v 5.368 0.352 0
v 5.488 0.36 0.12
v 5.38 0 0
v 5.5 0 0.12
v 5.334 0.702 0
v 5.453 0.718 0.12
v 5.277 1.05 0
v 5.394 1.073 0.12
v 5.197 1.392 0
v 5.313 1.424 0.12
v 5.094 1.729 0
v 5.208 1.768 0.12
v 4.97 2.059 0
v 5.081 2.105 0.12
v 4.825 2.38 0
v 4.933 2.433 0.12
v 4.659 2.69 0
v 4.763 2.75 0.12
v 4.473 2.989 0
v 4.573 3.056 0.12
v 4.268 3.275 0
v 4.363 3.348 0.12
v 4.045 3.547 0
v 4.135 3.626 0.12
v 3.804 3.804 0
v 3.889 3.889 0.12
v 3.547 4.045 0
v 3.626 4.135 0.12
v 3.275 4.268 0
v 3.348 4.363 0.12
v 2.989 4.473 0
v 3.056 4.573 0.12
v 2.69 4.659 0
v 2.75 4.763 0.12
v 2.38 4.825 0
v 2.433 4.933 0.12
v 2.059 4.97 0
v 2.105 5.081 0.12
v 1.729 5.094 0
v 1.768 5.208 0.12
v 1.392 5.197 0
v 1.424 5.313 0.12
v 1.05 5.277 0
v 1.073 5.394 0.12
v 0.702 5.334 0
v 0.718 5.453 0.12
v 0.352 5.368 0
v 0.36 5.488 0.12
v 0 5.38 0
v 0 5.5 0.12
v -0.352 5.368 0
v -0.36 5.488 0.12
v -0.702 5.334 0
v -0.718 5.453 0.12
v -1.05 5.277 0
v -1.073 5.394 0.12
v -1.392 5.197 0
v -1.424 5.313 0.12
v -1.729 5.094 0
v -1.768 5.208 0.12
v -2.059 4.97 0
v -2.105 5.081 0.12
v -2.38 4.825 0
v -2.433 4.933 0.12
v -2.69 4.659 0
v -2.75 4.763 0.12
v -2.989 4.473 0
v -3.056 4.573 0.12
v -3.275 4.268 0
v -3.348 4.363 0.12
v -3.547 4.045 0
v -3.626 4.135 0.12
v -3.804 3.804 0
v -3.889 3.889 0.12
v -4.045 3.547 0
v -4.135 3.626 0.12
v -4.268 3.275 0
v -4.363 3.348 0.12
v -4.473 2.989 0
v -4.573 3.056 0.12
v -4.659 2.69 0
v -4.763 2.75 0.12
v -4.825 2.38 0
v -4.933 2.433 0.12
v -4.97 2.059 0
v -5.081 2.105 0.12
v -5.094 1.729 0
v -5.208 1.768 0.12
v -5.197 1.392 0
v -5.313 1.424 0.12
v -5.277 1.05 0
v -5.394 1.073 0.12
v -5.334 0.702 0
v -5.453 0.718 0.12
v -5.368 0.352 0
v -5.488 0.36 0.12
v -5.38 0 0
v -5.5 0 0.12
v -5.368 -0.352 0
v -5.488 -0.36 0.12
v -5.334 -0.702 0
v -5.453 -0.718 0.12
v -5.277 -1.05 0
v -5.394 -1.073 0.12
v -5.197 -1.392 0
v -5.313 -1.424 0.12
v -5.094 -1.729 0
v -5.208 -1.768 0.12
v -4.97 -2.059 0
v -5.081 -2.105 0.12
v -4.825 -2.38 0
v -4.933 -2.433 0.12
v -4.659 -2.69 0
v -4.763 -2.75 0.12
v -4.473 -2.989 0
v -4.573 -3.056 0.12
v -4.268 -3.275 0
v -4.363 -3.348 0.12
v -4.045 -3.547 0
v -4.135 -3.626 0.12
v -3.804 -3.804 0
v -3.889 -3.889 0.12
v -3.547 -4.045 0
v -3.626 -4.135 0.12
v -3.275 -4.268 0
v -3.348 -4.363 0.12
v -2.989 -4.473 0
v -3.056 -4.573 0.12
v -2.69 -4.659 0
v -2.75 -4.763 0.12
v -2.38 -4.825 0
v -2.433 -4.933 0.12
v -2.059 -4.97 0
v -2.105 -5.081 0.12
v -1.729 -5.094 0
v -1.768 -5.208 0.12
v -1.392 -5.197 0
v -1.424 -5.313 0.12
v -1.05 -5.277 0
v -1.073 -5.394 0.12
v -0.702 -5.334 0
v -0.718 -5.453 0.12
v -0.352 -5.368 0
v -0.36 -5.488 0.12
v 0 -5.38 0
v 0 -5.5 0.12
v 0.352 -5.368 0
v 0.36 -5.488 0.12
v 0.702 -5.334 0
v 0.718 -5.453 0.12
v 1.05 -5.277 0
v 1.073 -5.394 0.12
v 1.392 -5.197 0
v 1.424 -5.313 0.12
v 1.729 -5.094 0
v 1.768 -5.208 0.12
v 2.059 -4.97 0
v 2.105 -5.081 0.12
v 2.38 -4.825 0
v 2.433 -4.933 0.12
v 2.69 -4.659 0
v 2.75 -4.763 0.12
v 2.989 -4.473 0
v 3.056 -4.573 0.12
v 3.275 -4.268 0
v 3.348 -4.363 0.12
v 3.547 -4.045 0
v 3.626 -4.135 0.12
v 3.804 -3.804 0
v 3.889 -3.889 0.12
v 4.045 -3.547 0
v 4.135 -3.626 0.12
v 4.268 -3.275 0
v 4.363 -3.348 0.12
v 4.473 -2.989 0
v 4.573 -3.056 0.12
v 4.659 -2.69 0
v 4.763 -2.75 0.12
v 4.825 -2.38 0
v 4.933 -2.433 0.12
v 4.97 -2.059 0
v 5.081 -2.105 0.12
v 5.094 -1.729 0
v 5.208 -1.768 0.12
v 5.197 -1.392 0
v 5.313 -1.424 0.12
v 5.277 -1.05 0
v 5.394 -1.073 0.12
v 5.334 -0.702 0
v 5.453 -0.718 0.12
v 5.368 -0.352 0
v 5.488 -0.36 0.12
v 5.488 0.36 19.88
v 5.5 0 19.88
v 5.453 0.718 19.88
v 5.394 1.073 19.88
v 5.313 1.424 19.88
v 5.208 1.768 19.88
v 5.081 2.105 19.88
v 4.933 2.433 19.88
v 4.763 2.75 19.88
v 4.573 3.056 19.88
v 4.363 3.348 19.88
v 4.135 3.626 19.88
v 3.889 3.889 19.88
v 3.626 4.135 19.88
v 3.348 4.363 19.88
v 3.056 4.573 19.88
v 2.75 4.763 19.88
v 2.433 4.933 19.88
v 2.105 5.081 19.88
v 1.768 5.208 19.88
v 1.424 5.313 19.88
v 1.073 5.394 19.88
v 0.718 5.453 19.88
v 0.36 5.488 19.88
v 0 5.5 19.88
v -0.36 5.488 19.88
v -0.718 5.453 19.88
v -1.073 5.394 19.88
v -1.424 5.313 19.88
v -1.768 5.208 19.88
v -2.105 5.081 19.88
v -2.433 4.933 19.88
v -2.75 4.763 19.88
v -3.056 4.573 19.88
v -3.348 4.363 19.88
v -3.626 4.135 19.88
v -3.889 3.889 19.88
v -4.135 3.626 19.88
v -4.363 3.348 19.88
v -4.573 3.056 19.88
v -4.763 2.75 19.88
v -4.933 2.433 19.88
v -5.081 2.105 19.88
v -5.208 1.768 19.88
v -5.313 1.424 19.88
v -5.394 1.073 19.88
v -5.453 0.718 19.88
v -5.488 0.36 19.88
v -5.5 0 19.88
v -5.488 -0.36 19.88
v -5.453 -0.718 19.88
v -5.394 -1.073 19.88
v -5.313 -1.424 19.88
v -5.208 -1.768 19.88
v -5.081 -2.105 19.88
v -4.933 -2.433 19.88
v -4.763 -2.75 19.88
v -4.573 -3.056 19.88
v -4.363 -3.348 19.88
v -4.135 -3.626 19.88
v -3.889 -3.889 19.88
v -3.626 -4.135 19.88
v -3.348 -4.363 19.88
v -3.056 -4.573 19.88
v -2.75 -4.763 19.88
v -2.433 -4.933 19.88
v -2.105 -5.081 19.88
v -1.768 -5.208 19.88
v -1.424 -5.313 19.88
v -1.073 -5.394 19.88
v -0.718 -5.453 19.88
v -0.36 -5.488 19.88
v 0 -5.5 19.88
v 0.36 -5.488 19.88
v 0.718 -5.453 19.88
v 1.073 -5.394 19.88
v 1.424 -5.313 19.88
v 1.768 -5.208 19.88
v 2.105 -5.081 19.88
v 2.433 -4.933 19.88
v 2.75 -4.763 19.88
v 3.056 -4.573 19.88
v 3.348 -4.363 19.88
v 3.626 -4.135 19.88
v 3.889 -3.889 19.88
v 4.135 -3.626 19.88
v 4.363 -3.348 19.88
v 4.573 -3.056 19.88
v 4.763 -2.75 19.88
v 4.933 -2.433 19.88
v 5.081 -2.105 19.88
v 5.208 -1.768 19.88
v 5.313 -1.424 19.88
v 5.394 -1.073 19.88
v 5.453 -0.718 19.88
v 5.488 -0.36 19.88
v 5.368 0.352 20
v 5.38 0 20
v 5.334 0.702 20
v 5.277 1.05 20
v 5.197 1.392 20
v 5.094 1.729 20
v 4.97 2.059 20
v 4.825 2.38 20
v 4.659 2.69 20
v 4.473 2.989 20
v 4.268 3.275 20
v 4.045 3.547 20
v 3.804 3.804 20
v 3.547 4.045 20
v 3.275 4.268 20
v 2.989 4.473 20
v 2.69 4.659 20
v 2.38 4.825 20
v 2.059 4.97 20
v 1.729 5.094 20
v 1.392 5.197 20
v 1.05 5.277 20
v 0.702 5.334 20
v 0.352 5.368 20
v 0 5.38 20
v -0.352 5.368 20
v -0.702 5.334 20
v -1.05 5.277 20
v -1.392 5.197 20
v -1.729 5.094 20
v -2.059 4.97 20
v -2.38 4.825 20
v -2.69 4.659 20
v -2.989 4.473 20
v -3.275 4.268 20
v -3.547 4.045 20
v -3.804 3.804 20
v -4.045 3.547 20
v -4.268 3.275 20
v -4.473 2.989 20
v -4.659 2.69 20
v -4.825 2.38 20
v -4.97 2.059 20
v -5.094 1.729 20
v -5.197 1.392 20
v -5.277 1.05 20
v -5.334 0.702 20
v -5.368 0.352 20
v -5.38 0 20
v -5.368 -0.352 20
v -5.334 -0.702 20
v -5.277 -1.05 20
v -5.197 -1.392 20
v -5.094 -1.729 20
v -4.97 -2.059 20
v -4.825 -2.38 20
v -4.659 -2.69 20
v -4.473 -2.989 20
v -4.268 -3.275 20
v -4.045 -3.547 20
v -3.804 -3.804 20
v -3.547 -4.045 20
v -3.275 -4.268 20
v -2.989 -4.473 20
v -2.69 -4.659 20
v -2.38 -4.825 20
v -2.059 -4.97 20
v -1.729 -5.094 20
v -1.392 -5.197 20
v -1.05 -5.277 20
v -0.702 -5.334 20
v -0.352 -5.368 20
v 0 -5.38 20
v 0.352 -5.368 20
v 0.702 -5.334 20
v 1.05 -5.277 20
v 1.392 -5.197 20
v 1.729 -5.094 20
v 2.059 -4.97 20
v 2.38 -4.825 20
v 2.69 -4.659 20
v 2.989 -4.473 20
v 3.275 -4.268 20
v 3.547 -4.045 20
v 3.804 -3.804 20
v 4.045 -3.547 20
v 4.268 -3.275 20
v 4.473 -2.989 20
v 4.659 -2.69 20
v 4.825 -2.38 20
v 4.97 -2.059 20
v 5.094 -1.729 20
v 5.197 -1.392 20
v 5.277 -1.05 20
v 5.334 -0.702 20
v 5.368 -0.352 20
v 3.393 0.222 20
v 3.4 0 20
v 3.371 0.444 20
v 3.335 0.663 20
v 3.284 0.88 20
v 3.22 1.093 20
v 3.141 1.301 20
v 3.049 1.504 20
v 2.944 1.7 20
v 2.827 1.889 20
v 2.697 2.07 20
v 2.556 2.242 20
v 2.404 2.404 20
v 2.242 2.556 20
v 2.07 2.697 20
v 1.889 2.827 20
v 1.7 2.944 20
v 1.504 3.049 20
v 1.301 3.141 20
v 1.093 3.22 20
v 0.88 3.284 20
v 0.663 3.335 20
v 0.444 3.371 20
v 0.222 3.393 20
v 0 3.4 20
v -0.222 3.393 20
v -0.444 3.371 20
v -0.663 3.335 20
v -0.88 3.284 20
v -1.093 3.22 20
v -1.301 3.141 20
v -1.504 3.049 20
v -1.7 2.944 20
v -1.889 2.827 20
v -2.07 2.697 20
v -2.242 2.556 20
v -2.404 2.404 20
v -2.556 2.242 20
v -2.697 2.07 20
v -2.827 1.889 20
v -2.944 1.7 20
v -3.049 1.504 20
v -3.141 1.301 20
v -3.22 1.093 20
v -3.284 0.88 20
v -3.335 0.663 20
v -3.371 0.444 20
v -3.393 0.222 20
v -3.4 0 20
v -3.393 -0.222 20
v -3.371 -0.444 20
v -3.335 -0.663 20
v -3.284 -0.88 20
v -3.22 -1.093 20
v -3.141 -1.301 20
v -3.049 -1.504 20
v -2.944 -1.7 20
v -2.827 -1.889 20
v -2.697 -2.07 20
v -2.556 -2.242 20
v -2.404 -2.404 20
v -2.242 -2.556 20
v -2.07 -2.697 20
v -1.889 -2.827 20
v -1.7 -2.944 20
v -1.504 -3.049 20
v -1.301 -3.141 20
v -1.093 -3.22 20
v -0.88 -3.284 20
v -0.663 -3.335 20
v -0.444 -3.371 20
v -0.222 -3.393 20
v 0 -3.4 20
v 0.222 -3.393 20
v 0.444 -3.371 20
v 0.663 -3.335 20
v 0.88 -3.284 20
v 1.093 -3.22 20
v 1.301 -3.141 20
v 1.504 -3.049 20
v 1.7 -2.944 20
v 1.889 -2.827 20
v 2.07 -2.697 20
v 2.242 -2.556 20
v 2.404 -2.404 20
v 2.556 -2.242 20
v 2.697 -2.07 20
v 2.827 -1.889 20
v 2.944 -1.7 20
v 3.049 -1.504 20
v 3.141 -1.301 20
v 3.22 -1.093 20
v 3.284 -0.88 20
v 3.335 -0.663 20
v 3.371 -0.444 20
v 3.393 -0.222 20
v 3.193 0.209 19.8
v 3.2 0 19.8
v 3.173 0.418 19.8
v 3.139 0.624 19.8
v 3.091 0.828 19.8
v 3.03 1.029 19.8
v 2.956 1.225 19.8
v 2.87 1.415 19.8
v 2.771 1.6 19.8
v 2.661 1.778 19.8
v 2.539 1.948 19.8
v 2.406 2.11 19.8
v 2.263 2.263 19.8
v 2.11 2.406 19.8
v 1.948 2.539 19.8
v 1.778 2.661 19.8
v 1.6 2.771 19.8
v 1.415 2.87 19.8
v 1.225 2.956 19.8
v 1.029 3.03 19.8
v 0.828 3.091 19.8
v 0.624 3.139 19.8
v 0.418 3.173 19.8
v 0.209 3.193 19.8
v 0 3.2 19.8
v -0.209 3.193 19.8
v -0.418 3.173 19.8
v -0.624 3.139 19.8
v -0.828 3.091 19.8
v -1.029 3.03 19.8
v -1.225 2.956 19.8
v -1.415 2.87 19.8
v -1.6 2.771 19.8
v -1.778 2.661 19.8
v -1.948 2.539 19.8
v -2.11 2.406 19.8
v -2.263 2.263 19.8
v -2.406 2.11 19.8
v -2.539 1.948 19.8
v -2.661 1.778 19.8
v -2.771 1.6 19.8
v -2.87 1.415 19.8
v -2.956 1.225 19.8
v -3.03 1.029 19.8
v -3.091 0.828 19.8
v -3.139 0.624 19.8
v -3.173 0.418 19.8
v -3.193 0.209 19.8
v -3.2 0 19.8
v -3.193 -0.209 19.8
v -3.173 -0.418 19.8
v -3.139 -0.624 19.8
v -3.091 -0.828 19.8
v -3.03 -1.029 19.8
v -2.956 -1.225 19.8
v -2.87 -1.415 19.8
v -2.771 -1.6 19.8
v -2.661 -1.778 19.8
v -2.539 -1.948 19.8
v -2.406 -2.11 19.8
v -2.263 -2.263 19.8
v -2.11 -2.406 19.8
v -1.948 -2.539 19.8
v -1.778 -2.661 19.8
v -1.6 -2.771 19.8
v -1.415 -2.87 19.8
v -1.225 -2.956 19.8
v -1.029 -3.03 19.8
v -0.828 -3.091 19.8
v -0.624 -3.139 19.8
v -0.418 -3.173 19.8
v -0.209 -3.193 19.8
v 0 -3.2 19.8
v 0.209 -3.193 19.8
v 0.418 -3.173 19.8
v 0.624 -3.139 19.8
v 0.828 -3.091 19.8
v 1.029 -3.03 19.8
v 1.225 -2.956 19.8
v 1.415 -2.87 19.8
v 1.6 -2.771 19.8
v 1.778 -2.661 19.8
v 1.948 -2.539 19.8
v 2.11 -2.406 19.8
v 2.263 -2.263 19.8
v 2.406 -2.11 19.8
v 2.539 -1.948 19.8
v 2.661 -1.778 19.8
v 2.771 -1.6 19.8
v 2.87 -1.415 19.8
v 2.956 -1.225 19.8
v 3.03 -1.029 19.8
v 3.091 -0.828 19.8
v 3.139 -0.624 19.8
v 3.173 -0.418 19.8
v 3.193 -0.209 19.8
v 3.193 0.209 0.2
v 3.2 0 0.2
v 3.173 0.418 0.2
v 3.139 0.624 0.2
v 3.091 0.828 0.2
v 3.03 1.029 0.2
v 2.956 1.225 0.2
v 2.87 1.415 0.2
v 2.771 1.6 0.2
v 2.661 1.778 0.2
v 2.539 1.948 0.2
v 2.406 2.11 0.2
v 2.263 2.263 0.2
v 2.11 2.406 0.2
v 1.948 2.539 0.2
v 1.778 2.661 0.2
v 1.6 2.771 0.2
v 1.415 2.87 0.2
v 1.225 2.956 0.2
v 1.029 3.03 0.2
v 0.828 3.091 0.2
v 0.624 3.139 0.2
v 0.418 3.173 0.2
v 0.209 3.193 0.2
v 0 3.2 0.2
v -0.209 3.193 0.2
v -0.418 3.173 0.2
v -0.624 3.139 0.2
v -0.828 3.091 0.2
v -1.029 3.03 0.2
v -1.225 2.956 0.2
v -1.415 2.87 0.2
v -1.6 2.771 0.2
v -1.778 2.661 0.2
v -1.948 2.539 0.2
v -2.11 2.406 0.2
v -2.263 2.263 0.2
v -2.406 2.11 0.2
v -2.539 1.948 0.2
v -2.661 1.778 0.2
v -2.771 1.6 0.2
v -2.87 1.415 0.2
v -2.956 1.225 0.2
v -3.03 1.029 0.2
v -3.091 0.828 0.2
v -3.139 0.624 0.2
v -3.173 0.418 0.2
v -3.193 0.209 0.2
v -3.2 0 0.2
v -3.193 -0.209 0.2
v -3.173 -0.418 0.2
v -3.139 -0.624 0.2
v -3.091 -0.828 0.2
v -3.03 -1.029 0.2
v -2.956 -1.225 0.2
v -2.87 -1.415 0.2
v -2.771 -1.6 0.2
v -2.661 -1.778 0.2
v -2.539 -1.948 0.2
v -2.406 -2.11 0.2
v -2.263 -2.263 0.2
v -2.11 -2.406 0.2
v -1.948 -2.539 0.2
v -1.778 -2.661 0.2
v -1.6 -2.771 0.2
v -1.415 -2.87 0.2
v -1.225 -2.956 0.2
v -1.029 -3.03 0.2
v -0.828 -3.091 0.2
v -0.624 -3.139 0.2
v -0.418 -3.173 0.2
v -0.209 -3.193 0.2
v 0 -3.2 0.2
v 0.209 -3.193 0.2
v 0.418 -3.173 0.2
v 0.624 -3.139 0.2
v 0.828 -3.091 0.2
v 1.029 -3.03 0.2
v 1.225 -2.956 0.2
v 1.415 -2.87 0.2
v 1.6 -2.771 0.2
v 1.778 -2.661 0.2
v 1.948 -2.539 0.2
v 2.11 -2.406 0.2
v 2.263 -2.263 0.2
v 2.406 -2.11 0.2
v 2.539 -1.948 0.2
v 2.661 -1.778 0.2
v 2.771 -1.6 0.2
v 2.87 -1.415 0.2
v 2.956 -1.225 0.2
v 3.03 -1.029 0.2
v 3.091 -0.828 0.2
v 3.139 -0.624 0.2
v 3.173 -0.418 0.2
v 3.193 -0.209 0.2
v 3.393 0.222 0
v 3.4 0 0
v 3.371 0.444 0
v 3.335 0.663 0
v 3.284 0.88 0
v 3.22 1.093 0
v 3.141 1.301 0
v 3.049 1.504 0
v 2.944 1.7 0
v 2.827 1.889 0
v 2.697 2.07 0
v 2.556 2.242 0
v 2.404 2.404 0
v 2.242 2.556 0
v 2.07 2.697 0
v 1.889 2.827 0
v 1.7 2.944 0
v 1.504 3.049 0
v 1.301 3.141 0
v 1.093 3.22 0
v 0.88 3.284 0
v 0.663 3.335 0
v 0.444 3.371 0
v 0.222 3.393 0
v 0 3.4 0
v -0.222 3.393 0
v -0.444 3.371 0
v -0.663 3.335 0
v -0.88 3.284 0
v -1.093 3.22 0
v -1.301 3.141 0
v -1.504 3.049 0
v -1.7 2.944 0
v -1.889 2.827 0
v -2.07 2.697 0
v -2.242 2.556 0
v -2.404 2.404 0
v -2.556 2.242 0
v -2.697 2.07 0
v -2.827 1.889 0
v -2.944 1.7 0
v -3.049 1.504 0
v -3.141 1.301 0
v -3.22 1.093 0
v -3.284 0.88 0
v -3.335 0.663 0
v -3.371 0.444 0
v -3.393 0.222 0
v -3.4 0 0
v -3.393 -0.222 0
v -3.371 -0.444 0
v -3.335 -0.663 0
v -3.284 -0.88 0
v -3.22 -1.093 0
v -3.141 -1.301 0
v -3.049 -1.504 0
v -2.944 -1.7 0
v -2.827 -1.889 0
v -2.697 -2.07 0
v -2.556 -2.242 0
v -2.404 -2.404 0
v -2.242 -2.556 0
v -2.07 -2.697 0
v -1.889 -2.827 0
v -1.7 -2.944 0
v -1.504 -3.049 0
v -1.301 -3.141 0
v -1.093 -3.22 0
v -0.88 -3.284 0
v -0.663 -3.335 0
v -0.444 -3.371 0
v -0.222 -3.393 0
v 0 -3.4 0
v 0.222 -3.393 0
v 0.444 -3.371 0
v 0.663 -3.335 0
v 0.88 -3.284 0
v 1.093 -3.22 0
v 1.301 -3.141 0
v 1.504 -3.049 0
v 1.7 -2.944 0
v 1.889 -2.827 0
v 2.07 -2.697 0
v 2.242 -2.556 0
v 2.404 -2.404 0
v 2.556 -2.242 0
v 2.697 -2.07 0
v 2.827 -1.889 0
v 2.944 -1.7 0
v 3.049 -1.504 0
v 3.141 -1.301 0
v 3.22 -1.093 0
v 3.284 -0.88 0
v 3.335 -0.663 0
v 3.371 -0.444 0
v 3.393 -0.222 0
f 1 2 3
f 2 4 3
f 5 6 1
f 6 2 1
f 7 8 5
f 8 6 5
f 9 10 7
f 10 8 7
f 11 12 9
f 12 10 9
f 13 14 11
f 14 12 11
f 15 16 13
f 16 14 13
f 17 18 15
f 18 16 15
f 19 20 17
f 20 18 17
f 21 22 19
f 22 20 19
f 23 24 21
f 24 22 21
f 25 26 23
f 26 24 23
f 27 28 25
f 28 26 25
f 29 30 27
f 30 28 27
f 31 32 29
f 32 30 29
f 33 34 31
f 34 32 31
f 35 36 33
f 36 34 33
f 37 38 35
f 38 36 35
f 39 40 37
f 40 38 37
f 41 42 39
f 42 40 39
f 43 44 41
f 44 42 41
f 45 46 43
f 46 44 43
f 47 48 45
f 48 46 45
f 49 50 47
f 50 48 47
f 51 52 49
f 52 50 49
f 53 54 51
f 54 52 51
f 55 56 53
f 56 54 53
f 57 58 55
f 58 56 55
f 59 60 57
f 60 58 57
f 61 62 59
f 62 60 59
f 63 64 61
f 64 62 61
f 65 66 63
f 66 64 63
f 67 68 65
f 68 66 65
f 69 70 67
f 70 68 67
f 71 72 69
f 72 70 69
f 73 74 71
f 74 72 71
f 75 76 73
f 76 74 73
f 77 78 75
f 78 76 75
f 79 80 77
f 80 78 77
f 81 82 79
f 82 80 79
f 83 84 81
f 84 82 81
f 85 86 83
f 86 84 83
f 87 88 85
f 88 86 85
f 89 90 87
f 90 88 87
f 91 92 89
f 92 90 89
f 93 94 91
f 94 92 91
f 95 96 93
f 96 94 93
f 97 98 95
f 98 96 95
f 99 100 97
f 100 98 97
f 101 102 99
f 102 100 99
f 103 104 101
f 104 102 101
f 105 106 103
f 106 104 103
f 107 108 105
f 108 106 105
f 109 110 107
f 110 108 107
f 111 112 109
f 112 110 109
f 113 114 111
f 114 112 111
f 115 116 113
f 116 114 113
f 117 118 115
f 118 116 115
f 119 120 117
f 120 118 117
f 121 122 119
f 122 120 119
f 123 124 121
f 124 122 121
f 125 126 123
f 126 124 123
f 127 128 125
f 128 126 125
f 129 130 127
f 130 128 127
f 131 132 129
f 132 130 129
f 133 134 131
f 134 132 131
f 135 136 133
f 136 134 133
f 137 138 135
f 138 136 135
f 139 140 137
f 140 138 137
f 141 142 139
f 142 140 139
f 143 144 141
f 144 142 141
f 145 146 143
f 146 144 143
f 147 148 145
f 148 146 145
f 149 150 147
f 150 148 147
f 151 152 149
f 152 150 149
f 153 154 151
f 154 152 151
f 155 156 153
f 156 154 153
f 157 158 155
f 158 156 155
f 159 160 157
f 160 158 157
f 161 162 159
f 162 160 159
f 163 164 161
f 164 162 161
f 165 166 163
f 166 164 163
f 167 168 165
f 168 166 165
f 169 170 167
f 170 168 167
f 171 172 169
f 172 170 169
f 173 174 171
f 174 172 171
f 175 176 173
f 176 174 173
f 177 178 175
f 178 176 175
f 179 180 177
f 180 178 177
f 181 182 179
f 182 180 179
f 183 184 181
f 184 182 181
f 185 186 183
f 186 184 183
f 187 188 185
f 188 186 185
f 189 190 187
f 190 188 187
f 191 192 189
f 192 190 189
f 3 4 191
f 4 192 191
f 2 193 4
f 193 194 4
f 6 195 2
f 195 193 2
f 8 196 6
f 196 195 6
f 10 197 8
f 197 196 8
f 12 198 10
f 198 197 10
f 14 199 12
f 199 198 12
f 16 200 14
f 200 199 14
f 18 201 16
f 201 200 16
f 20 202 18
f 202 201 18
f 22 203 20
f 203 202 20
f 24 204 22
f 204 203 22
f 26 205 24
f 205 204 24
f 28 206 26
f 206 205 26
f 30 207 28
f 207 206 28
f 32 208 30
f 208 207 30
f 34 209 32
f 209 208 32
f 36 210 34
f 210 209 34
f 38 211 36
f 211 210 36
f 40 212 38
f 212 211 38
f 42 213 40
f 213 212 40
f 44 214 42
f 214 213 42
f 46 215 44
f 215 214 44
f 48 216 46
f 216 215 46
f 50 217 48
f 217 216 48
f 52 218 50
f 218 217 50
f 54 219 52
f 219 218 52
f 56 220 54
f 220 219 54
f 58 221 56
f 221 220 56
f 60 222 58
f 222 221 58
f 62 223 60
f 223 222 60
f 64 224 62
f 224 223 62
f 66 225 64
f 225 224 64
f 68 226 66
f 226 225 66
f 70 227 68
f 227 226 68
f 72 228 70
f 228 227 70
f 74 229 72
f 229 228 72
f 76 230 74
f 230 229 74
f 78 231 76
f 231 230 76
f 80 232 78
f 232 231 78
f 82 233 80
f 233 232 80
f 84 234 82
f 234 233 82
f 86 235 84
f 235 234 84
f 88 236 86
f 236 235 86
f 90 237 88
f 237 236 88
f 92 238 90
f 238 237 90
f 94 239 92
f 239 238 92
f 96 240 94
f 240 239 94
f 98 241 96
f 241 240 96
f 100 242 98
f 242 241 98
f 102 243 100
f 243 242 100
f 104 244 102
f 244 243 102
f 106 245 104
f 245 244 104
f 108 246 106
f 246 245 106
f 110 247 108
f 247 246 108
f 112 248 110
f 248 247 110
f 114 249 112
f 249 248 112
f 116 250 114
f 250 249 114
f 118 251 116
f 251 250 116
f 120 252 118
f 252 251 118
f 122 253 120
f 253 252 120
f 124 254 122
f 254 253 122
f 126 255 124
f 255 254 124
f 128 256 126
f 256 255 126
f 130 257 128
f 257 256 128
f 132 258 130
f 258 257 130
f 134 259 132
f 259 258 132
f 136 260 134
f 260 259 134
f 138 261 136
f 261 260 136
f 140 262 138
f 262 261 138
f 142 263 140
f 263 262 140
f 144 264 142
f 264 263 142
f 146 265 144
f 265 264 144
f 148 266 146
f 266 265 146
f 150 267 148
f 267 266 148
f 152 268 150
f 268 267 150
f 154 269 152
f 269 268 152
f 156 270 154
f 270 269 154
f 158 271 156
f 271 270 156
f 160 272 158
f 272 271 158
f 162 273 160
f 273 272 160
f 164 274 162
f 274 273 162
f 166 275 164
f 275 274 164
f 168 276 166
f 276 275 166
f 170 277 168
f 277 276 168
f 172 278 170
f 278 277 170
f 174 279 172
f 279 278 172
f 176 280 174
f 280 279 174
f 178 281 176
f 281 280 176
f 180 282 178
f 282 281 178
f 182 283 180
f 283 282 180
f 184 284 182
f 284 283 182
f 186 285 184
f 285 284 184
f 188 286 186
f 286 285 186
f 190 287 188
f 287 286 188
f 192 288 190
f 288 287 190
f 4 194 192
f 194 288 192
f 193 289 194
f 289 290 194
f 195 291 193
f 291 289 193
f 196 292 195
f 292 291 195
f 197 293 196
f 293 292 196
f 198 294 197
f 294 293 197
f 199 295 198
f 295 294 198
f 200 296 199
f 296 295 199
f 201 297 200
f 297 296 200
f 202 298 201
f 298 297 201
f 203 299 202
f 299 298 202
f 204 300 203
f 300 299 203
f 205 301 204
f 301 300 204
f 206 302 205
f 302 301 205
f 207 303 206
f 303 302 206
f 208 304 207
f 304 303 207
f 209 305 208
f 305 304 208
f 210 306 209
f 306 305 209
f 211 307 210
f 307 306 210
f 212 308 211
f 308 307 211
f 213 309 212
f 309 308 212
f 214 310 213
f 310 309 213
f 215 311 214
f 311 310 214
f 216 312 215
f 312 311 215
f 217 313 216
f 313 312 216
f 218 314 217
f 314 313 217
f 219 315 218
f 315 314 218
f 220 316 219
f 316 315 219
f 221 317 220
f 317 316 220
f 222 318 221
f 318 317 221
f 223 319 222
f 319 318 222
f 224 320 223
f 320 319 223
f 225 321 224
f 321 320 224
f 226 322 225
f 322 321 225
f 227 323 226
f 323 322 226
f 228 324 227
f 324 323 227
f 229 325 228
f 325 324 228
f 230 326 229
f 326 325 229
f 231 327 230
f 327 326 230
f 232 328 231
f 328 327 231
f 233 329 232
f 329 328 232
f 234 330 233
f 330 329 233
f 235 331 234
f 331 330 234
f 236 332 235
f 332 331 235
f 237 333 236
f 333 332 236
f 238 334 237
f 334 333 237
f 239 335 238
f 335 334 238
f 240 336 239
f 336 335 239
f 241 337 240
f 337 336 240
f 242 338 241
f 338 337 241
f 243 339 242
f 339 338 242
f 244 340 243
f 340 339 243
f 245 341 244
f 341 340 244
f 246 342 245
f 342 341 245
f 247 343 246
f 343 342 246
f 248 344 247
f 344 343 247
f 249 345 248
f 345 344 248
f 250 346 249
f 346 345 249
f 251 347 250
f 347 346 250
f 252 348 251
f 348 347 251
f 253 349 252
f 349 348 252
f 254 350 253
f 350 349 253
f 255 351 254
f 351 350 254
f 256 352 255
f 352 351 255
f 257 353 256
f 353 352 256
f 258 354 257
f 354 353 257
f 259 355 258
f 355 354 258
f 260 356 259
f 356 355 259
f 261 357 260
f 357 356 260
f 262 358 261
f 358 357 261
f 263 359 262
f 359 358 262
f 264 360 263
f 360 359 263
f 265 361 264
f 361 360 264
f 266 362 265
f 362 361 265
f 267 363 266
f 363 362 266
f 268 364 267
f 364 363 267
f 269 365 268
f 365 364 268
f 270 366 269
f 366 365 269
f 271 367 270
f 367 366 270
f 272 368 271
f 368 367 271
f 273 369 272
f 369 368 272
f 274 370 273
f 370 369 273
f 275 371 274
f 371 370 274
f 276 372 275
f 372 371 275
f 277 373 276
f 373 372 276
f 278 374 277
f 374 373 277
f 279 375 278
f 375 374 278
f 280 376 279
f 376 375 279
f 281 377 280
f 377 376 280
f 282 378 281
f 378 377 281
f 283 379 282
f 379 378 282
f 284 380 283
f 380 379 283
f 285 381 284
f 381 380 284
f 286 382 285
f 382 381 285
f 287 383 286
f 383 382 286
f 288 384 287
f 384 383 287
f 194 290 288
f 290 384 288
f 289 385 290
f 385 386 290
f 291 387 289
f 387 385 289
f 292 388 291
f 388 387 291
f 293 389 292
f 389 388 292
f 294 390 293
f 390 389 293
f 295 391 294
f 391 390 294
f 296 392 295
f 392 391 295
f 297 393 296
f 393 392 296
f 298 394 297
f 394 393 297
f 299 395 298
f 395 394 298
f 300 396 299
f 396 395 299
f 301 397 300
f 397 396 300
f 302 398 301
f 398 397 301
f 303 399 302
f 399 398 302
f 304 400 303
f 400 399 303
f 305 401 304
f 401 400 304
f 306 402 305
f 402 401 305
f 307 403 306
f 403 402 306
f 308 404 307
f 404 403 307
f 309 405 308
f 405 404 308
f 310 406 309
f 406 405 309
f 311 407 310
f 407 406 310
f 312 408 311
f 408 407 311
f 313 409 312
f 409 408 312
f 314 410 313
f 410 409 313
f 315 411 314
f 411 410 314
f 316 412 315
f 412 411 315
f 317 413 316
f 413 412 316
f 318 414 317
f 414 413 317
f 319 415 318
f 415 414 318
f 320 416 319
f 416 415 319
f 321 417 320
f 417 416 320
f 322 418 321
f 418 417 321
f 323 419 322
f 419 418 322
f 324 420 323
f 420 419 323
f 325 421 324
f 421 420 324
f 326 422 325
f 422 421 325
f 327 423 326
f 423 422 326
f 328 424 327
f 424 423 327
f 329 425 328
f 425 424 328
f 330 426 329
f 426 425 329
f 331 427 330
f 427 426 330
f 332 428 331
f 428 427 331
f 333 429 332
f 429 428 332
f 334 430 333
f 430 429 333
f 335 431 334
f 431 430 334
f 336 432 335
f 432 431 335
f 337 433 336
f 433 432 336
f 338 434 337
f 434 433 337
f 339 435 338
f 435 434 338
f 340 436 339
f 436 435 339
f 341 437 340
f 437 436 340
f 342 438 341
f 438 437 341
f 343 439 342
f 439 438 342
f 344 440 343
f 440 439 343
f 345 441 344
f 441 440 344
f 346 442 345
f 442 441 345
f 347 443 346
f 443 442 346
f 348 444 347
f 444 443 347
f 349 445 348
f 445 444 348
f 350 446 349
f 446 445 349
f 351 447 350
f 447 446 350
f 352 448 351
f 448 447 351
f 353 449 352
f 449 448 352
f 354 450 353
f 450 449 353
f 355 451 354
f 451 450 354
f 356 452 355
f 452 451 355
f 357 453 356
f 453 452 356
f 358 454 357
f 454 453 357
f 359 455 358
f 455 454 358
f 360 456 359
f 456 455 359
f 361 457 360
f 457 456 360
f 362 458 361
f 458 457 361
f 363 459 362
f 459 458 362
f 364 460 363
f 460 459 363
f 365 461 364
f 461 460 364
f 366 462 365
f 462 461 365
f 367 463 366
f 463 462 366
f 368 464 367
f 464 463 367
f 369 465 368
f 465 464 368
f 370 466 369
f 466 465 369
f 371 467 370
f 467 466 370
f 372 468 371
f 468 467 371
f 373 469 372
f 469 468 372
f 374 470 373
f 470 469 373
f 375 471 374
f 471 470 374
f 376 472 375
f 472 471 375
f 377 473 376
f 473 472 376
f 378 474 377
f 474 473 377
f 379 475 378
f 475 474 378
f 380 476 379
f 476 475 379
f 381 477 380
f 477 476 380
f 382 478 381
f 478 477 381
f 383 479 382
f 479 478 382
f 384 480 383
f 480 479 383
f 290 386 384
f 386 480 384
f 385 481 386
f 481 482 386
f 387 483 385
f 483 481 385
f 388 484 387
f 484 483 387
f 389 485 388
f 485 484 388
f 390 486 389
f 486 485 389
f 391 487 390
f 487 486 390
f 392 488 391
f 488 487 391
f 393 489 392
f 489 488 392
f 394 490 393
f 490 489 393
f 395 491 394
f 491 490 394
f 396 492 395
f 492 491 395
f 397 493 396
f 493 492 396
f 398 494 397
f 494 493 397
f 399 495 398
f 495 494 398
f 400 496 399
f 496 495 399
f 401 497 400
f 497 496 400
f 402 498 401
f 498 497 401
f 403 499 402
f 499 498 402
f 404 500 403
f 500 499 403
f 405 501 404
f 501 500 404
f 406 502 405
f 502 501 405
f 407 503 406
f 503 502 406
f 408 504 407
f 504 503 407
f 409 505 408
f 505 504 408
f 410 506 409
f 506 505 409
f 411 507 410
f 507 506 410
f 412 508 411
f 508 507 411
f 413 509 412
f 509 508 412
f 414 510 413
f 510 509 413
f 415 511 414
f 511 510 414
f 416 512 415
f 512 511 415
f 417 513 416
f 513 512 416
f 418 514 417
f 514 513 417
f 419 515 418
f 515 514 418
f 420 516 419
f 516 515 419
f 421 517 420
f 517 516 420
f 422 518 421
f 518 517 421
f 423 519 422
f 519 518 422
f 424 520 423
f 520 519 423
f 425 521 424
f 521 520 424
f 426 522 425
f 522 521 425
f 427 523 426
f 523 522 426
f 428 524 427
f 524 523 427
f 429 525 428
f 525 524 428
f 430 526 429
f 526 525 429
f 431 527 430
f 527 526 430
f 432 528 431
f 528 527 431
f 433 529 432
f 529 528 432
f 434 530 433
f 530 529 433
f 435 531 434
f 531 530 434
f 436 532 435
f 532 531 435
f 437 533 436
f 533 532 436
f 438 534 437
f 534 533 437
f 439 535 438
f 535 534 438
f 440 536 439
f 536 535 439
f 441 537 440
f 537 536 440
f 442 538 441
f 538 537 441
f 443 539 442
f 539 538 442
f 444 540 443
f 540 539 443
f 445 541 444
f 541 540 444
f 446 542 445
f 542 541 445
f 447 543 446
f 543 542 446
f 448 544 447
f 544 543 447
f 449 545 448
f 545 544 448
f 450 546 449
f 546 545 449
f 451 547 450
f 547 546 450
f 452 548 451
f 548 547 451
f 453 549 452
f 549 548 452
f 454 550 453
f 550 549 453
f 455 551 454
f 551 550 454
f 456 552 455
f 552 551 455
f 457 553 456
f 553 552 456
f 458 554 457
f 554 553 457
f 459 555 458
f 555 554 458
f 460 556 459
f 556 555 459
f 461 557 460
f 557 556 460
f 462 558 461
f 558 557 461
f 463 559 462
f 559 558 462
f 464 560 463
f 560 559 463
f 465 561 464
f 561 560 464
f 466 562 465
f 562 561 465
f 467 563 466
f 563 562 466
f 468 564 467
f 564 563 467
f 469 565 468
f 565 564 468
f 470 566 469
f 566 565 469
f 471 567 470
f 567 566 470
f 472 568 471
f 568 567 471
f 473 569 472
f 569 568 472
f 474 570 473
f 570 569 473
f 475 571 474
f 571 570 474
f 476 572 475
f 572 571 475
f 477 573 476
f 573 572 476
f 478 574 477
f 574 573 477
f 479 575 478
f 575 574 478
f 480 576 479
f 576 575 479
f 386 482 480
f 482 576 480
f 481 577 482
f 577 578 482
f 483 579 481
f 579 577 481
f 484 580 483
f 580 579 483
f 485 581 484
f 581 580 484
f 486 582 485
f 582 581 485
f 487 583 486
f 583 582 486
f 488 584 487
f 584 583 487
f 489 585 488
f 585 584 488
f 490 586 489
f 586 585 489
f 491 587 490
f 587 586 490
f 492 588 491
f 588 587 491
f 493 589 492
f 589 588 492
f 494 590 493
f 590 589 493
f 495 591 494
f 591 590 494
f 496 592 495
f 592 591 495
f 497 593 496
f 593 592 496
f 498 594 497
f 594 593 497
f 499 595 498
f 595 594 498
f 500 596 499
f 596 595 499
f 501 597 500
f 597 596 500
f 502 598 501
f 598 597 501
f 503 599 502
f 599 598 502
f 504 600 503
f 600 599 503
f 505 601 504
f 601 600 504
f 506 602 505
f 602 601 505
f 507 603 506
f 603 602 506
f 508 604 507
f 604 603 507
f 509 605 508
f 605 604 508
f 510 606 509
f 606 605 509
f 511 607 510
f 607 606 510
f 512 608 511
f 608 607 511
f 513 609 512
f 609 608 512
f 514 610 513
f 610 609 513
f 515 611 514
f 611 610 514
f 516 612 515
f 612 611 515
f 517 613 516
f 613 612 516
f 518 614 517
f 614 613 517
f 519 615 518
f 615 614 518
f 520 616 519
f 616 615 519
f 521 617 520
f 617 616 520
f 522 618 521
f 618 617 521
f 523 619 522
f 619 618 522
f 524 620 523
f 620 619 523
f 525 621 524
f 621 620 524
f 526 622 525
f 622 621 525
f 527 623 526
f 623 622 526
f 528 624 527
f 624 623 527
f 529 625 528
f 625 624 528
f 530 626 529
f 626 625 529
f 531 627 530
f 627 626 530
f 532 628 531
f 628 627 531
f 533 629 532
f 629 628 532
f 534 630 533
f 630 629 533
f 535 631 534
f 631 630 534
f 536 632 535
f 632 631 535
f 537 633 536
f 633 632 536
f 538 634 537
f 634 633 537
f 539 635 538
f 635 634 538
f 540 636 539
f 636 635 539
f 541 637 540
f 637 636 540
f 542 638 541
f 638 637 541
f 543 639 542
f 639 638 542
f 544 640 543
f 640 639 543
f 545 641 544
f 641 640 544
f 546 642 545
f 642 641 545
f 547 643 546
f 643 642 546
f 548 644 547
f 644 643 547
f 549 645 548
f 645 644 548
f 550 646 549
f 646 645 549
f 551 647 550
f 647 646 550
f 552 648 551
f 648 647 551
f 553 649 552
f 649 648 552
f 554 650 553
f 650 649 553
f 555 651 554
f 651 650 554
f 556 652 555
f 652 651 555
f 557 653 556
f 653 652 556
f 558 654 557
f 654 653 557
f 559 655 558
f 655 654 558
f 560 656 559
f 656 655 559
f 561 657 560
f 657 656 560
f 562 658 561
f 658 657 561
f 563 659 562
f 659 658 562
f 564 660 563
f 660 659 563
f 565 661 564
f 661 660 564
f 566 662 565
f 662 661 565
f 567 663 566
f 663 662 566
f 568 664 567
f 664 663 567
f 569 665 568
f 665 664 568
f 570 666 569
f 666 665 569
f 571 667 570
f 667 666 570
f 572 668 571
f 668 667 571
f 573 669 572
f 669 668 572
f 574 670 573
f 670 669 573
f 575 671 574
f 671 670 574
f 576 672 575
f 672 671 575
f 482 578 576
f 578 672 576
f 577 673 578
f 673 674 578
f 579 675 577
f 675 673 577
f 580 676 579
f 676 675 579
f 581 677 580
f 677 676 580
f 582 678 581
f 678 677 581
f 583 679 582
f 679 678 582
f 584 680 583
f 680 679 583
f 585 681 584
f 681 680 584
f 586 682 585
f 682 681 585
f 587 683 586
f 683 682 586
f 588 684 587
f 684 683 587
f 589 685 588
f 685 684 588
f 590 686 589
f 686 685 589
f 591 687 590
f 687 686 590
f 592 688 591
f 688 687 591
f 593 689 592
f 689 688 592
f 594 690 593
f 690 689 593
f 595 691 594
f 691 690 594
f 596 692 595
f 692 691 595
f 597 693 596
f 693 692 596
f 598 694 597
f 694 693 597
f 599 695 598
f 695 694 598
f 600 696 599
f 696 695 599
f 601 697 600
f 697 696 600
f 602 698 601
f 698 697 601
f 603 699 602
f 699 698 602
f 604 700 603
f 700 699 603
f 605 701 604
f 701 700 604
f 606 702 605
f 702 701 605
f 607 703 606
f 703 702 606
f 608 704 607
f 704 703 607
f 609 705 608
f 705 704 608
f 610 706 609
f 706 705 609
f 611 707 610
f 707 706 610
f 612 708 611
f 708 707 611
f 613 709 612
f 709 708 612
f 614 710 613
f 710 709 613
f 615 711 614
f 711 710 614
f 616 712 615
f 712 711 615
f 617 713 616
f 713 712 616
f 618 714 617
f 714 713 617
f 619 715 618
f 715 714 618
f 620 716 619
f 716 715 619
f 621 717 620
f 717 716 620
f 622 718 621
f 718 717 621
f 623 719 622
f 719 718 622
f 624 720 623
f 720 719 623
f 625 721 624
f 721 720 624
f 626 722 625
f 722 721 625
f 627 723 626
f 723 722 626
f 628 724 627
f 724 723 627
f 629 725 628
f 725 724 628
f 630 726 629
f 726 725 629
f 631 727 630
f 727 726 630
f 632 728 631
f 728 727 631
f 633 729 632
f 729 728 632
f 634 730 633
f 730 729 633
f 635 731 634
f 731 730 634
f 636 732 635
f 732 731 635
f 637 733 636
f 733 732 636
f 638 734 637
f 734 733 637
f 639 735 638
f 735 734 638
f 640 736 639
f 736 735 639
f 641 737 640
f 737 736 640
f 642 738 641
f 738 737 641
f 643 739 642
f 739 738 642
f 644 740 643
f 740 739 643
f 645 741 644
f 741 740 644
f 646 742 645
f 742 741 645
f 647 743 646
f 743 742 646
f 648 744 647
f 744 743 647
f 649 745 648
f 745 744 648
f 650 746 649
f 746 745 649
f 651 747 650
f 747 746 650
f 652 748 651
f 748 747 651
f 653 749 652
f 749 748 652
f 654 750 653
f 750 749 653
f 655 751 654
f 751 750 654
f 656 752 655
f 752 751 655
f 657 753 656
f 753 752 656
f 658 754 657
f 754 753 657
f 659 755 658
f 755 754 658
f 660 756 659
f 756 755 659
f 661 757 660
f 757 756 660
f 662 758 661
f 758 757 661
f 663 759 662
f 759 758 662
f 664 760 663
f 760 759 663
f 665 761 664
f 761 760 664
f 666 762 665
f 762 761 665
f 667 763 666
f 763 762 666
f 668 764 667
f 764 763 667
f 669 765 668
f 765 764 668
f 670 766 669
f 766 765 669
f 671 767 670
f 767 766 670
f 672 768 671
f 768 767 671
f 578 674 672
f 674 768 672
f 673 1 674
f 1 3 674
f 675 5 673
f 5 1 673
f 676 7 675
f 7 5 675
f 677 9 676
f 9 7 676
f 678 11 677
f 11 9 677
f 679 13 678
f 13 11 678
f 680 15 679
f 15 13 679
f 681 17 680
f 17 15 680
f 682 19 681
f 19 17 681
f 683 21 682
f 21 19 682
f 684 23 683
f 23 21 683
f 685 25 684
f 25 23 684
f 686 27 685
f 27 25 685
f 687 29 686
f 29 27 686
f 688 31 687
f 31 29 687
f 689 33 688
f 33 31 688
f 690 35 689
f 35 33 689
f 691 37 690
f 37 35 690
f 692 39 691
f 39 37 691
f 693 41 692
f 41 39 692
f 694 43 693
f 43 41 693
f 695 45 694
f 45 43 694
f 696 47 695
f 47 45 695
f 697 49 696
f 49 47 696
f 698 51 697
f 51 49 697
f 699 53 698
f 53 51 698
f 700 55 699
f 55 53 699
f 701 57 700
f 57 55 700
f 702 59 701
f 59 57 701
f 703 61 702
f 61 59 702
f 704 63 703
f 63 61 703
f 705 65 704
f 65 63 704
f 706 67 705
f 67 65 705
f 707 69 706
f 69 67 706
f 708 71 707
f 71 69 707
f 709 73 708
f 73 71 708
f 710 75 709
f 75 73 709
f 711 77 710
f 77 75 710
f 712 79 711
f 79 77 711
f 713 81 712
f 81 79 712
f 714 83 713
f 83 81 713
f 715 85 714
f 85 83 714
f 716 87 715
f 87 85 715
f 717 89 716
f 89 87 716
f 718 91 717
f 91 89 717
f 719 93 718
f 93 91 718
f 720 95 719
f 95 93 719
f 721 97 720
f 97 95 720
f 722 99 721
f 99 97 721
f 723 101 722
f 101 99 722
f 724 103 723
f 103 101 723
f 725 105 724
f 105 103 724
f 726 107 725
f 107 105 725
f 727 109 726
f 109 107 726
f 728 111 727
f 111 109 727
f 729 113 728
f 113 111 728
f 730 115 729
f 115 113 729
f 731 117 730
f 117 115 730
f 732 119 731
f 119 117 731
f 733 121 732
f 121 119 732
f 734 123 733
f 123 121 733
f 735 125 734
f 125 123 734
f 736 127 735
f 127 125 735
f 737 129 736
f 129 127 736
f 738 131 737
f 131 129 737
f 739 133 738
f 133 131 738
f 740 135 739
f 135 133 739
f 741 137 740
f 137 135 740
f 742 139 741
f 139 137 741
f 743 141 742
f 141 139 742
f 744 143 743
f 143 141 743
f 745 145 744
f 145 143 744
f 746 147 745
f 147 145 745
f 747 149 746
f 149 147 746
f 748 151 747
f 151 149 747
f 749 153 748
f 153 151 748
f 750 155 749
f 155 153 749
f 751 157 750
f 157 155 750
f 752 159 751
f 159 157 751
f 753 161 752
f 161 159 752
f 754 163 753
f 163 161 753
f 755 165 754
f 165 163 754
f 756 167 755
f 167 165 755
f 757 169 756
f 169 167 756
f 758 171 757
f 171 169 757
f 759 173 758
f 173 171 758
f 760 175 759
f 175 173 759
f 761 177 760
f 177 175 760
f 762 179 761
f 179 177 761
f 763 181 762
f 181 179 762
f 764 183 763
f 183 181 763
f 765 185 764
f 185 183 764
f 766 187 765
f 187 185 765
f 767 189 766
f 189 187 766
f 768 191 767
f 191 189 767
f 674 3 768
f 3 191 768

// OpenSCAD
// OOMP generic catalogue model; units: mm.
// Stud length is additional to body depth. Tapping depths are model assumptions.
variant = "full"; // [full, display]
family = "spacer";
connection_type = "plain";
depth_mm = 20;
stud_length_mm = 0;
tapped_depth_mm = 0;
bore_mm = 6.4;
outer_diameter_mm = 11;
across_flats_mm = 6;
thread_nominal_diameter_mm = 3;
thread_pitch_mm = 0.5;
edge_chamfer_mm = 0.12;
mouth_chamfer_mm = 0.2;
angular_segments = 96;
samples_per_pitch = 16;

// Boundary travels up the outside, then down any tapped/plain bore.
// Equal-height rings at shoulders form the annular shoulder faces.
n = angular_segments;
threaded = family == "standoff";
has_stud = connection_type == "stud_to_tapped" || connection_type == "stud_to_stud";
two_studs = connection_type == "stud_to_stud";
through = !threaded || connection_type == "tapped_to_tapped";
pitch = thread_pitch_mm;
diameter = threaded ? thread_nominal_diameter_mm : bore_mm;
minor = diameter - 5*sqrt(3)*pitch/8;
transition = mouth_chamfer_mm + (threaded ? 5*sqrt(3)*pitch/16 : 0);
tip_chamfer = mouth_chamfer_mm + 17*sqrt(3)*pitch/48;
function sorted(v) = len(v)<=1 ? v : let(p=v[0])
    concat(sorted([for(x=v) if(x<p-1e-8) x]), [p], sorted([for(x=v) if(x>p+1e-8) x]));
function reverse(v) = [for(i=[len(v)-1:-1:0]) v[i]];
function theta(i) = i*360/n;
function fract(x) = x-floor(x);
function phase_distance(i,z) = abs(fract(z/pitch-theta(i)/360+0.5)-0.5);
function thread_r(i,z) = minor/2 + min(5*sqrt(3)*pitch/16,
    max(0,(phase_distance(i,z)-0.125)*pitch*sqrt(3)));
function stud_r(i,z,tip) = min(diameter/2 - (variant=="full" ?
    min(17*sqrt(3)*pitch/48,max(0,(phase_distance(i,z)-0.0625)*pitch*sqrt(3))) : 0),
    diameter/2-tip_chamfer+abs(z-tip));
function body_r(i,z) = (threaded ? across_flats_mm/2/cos(theta(i)%60-30) : outer_diameter_mm/2)
    - max(0,edge_chamfer_mm-min(z,depth_mm-z));
function bore_r(i,z) = max(threaded ? (variant=="full" ? thread_r(i,z) : minor/2) : diameter/2,
    diameter/2+mouth_chamfer_mm-(through ? min(z,depth_mm-z) : depth_mm-z));
function stud_z(a,b,tip) = let(count=variant=="full" ? ceil(stud_length_mm/pitch*samples_per_pitch) : 1)
    sorted(concat([for(i=[0:count]) a+(b-a)*i/count], [tip==a ? tip+tip_chamfer : tip-tip_chamfer]));
body_z = sorted([0,edge_chamfer_mm,depth_mm-edge_chamfer_mm,depth_mm]);
low = through ? 0 : depth_mm-tapped_depth_mm;
count = threaded && variant=="full" ? ceil((depth_mm-low)/pitch*samples_per_pitch) : 1;
bore_z = two_studs ? [] : reverse(sorted(concat(
    [for(i=[0:count]) low+(depth_mm-low)*i/count],
    [depth_mm-mouth_chamfer_mm,depth_mm-transition],
    through ? [mouth_chamfer_mm,transition] : [])));
// Ring descriptors: [height, kind, tip]. Kind: 0 body, 1 stud, 2 bore.
rings = concat(
    has_stud ? [for(z=stud_z(-stud_length_mm,0,-stud_length_mm)) [z,1,-stud_length_mm]] : [],
    [for(z=body_z) [z,0,0]],
    two_studs ? [for(z=stud_z(depth_mm,depth_mm+stud_length_mm,depth_mm+stud_length_mm)) [z,1,depth_mm+stud_length_mm]] : [],
    [for(z=bore_z) [z,2,0]]);
function radius(i,ring) = ring[1]==0 ? body_r(i,ring[0]) :
    ring[1]==1 ? stud_r(i,ring[0],ring[2]) : bore_r(i,ring[0]);
points = concat([for(ring=rings) for(i=[0:n-1])
    [radius(i,ring)*cos(theta(i)),radius(i,ring)*sin(theta(i)),ring[0]]],
    through ? [] : [[0,0,rings[0][0]],[0,0,rings[len(rings)-1][0]]]);
center = len(rings)*n;
last = (len(rings)-1)*n;
// OpenSCAD winding is opposite to STL winding.
faces = concat(
    [for(j=[0:len(rings)-(through ? 1 : 2)]) for(i=[0:n-1]) each
        let(a=j*n+i,b=j*n+(i+1)%n,c=((j+1)%len(rings))*n+(i+1)%n,d=((j+1)%len(rings))*n+i)
        [[a,c,b],[a,d,c]]],
    through ? [] : [for(i=[0:n-1]) each let(k=(i+1)%n)
        [[center,i,k],[center+1,last+k,last+i]]]);
assert(family=="spacer" || family=="standoff");
assert(!threaded || connection_type=="tapped_to_tapped" || has_stud);
assert(depth_mm>0 && diameter>0 && pitch>0);
assert(variant=="full" || variant=="display");
assert(n>=24 && n%12==0 && samples_per_pitch>=8);
assert(mouth_chamfer_mm>0 && mouth_chamfer_mm<depth_mm/2);
assert(edge_chamfer_mm>=0 && edge_chamfer_mm<depth_mm/2);
assert(diameter+4*max(mouth_chamfer_mm,edge_chamfer_mm) < (threaded ? across_flats_mm : outer_diameter_mm));
assert(!has_stud || stud_length_mm>2*mouth_chamfer_mm);
assert(!through || !threaded || 2*transition<depth_mm);
assert(connection_type!="stud_to_tapped" || (tapped_depth_mm>transition && tapped_depth_mm<depth_mm));
color([0.86,0.85,0.81]) polyhedron(points=points,faces=faces,convexity=20);
